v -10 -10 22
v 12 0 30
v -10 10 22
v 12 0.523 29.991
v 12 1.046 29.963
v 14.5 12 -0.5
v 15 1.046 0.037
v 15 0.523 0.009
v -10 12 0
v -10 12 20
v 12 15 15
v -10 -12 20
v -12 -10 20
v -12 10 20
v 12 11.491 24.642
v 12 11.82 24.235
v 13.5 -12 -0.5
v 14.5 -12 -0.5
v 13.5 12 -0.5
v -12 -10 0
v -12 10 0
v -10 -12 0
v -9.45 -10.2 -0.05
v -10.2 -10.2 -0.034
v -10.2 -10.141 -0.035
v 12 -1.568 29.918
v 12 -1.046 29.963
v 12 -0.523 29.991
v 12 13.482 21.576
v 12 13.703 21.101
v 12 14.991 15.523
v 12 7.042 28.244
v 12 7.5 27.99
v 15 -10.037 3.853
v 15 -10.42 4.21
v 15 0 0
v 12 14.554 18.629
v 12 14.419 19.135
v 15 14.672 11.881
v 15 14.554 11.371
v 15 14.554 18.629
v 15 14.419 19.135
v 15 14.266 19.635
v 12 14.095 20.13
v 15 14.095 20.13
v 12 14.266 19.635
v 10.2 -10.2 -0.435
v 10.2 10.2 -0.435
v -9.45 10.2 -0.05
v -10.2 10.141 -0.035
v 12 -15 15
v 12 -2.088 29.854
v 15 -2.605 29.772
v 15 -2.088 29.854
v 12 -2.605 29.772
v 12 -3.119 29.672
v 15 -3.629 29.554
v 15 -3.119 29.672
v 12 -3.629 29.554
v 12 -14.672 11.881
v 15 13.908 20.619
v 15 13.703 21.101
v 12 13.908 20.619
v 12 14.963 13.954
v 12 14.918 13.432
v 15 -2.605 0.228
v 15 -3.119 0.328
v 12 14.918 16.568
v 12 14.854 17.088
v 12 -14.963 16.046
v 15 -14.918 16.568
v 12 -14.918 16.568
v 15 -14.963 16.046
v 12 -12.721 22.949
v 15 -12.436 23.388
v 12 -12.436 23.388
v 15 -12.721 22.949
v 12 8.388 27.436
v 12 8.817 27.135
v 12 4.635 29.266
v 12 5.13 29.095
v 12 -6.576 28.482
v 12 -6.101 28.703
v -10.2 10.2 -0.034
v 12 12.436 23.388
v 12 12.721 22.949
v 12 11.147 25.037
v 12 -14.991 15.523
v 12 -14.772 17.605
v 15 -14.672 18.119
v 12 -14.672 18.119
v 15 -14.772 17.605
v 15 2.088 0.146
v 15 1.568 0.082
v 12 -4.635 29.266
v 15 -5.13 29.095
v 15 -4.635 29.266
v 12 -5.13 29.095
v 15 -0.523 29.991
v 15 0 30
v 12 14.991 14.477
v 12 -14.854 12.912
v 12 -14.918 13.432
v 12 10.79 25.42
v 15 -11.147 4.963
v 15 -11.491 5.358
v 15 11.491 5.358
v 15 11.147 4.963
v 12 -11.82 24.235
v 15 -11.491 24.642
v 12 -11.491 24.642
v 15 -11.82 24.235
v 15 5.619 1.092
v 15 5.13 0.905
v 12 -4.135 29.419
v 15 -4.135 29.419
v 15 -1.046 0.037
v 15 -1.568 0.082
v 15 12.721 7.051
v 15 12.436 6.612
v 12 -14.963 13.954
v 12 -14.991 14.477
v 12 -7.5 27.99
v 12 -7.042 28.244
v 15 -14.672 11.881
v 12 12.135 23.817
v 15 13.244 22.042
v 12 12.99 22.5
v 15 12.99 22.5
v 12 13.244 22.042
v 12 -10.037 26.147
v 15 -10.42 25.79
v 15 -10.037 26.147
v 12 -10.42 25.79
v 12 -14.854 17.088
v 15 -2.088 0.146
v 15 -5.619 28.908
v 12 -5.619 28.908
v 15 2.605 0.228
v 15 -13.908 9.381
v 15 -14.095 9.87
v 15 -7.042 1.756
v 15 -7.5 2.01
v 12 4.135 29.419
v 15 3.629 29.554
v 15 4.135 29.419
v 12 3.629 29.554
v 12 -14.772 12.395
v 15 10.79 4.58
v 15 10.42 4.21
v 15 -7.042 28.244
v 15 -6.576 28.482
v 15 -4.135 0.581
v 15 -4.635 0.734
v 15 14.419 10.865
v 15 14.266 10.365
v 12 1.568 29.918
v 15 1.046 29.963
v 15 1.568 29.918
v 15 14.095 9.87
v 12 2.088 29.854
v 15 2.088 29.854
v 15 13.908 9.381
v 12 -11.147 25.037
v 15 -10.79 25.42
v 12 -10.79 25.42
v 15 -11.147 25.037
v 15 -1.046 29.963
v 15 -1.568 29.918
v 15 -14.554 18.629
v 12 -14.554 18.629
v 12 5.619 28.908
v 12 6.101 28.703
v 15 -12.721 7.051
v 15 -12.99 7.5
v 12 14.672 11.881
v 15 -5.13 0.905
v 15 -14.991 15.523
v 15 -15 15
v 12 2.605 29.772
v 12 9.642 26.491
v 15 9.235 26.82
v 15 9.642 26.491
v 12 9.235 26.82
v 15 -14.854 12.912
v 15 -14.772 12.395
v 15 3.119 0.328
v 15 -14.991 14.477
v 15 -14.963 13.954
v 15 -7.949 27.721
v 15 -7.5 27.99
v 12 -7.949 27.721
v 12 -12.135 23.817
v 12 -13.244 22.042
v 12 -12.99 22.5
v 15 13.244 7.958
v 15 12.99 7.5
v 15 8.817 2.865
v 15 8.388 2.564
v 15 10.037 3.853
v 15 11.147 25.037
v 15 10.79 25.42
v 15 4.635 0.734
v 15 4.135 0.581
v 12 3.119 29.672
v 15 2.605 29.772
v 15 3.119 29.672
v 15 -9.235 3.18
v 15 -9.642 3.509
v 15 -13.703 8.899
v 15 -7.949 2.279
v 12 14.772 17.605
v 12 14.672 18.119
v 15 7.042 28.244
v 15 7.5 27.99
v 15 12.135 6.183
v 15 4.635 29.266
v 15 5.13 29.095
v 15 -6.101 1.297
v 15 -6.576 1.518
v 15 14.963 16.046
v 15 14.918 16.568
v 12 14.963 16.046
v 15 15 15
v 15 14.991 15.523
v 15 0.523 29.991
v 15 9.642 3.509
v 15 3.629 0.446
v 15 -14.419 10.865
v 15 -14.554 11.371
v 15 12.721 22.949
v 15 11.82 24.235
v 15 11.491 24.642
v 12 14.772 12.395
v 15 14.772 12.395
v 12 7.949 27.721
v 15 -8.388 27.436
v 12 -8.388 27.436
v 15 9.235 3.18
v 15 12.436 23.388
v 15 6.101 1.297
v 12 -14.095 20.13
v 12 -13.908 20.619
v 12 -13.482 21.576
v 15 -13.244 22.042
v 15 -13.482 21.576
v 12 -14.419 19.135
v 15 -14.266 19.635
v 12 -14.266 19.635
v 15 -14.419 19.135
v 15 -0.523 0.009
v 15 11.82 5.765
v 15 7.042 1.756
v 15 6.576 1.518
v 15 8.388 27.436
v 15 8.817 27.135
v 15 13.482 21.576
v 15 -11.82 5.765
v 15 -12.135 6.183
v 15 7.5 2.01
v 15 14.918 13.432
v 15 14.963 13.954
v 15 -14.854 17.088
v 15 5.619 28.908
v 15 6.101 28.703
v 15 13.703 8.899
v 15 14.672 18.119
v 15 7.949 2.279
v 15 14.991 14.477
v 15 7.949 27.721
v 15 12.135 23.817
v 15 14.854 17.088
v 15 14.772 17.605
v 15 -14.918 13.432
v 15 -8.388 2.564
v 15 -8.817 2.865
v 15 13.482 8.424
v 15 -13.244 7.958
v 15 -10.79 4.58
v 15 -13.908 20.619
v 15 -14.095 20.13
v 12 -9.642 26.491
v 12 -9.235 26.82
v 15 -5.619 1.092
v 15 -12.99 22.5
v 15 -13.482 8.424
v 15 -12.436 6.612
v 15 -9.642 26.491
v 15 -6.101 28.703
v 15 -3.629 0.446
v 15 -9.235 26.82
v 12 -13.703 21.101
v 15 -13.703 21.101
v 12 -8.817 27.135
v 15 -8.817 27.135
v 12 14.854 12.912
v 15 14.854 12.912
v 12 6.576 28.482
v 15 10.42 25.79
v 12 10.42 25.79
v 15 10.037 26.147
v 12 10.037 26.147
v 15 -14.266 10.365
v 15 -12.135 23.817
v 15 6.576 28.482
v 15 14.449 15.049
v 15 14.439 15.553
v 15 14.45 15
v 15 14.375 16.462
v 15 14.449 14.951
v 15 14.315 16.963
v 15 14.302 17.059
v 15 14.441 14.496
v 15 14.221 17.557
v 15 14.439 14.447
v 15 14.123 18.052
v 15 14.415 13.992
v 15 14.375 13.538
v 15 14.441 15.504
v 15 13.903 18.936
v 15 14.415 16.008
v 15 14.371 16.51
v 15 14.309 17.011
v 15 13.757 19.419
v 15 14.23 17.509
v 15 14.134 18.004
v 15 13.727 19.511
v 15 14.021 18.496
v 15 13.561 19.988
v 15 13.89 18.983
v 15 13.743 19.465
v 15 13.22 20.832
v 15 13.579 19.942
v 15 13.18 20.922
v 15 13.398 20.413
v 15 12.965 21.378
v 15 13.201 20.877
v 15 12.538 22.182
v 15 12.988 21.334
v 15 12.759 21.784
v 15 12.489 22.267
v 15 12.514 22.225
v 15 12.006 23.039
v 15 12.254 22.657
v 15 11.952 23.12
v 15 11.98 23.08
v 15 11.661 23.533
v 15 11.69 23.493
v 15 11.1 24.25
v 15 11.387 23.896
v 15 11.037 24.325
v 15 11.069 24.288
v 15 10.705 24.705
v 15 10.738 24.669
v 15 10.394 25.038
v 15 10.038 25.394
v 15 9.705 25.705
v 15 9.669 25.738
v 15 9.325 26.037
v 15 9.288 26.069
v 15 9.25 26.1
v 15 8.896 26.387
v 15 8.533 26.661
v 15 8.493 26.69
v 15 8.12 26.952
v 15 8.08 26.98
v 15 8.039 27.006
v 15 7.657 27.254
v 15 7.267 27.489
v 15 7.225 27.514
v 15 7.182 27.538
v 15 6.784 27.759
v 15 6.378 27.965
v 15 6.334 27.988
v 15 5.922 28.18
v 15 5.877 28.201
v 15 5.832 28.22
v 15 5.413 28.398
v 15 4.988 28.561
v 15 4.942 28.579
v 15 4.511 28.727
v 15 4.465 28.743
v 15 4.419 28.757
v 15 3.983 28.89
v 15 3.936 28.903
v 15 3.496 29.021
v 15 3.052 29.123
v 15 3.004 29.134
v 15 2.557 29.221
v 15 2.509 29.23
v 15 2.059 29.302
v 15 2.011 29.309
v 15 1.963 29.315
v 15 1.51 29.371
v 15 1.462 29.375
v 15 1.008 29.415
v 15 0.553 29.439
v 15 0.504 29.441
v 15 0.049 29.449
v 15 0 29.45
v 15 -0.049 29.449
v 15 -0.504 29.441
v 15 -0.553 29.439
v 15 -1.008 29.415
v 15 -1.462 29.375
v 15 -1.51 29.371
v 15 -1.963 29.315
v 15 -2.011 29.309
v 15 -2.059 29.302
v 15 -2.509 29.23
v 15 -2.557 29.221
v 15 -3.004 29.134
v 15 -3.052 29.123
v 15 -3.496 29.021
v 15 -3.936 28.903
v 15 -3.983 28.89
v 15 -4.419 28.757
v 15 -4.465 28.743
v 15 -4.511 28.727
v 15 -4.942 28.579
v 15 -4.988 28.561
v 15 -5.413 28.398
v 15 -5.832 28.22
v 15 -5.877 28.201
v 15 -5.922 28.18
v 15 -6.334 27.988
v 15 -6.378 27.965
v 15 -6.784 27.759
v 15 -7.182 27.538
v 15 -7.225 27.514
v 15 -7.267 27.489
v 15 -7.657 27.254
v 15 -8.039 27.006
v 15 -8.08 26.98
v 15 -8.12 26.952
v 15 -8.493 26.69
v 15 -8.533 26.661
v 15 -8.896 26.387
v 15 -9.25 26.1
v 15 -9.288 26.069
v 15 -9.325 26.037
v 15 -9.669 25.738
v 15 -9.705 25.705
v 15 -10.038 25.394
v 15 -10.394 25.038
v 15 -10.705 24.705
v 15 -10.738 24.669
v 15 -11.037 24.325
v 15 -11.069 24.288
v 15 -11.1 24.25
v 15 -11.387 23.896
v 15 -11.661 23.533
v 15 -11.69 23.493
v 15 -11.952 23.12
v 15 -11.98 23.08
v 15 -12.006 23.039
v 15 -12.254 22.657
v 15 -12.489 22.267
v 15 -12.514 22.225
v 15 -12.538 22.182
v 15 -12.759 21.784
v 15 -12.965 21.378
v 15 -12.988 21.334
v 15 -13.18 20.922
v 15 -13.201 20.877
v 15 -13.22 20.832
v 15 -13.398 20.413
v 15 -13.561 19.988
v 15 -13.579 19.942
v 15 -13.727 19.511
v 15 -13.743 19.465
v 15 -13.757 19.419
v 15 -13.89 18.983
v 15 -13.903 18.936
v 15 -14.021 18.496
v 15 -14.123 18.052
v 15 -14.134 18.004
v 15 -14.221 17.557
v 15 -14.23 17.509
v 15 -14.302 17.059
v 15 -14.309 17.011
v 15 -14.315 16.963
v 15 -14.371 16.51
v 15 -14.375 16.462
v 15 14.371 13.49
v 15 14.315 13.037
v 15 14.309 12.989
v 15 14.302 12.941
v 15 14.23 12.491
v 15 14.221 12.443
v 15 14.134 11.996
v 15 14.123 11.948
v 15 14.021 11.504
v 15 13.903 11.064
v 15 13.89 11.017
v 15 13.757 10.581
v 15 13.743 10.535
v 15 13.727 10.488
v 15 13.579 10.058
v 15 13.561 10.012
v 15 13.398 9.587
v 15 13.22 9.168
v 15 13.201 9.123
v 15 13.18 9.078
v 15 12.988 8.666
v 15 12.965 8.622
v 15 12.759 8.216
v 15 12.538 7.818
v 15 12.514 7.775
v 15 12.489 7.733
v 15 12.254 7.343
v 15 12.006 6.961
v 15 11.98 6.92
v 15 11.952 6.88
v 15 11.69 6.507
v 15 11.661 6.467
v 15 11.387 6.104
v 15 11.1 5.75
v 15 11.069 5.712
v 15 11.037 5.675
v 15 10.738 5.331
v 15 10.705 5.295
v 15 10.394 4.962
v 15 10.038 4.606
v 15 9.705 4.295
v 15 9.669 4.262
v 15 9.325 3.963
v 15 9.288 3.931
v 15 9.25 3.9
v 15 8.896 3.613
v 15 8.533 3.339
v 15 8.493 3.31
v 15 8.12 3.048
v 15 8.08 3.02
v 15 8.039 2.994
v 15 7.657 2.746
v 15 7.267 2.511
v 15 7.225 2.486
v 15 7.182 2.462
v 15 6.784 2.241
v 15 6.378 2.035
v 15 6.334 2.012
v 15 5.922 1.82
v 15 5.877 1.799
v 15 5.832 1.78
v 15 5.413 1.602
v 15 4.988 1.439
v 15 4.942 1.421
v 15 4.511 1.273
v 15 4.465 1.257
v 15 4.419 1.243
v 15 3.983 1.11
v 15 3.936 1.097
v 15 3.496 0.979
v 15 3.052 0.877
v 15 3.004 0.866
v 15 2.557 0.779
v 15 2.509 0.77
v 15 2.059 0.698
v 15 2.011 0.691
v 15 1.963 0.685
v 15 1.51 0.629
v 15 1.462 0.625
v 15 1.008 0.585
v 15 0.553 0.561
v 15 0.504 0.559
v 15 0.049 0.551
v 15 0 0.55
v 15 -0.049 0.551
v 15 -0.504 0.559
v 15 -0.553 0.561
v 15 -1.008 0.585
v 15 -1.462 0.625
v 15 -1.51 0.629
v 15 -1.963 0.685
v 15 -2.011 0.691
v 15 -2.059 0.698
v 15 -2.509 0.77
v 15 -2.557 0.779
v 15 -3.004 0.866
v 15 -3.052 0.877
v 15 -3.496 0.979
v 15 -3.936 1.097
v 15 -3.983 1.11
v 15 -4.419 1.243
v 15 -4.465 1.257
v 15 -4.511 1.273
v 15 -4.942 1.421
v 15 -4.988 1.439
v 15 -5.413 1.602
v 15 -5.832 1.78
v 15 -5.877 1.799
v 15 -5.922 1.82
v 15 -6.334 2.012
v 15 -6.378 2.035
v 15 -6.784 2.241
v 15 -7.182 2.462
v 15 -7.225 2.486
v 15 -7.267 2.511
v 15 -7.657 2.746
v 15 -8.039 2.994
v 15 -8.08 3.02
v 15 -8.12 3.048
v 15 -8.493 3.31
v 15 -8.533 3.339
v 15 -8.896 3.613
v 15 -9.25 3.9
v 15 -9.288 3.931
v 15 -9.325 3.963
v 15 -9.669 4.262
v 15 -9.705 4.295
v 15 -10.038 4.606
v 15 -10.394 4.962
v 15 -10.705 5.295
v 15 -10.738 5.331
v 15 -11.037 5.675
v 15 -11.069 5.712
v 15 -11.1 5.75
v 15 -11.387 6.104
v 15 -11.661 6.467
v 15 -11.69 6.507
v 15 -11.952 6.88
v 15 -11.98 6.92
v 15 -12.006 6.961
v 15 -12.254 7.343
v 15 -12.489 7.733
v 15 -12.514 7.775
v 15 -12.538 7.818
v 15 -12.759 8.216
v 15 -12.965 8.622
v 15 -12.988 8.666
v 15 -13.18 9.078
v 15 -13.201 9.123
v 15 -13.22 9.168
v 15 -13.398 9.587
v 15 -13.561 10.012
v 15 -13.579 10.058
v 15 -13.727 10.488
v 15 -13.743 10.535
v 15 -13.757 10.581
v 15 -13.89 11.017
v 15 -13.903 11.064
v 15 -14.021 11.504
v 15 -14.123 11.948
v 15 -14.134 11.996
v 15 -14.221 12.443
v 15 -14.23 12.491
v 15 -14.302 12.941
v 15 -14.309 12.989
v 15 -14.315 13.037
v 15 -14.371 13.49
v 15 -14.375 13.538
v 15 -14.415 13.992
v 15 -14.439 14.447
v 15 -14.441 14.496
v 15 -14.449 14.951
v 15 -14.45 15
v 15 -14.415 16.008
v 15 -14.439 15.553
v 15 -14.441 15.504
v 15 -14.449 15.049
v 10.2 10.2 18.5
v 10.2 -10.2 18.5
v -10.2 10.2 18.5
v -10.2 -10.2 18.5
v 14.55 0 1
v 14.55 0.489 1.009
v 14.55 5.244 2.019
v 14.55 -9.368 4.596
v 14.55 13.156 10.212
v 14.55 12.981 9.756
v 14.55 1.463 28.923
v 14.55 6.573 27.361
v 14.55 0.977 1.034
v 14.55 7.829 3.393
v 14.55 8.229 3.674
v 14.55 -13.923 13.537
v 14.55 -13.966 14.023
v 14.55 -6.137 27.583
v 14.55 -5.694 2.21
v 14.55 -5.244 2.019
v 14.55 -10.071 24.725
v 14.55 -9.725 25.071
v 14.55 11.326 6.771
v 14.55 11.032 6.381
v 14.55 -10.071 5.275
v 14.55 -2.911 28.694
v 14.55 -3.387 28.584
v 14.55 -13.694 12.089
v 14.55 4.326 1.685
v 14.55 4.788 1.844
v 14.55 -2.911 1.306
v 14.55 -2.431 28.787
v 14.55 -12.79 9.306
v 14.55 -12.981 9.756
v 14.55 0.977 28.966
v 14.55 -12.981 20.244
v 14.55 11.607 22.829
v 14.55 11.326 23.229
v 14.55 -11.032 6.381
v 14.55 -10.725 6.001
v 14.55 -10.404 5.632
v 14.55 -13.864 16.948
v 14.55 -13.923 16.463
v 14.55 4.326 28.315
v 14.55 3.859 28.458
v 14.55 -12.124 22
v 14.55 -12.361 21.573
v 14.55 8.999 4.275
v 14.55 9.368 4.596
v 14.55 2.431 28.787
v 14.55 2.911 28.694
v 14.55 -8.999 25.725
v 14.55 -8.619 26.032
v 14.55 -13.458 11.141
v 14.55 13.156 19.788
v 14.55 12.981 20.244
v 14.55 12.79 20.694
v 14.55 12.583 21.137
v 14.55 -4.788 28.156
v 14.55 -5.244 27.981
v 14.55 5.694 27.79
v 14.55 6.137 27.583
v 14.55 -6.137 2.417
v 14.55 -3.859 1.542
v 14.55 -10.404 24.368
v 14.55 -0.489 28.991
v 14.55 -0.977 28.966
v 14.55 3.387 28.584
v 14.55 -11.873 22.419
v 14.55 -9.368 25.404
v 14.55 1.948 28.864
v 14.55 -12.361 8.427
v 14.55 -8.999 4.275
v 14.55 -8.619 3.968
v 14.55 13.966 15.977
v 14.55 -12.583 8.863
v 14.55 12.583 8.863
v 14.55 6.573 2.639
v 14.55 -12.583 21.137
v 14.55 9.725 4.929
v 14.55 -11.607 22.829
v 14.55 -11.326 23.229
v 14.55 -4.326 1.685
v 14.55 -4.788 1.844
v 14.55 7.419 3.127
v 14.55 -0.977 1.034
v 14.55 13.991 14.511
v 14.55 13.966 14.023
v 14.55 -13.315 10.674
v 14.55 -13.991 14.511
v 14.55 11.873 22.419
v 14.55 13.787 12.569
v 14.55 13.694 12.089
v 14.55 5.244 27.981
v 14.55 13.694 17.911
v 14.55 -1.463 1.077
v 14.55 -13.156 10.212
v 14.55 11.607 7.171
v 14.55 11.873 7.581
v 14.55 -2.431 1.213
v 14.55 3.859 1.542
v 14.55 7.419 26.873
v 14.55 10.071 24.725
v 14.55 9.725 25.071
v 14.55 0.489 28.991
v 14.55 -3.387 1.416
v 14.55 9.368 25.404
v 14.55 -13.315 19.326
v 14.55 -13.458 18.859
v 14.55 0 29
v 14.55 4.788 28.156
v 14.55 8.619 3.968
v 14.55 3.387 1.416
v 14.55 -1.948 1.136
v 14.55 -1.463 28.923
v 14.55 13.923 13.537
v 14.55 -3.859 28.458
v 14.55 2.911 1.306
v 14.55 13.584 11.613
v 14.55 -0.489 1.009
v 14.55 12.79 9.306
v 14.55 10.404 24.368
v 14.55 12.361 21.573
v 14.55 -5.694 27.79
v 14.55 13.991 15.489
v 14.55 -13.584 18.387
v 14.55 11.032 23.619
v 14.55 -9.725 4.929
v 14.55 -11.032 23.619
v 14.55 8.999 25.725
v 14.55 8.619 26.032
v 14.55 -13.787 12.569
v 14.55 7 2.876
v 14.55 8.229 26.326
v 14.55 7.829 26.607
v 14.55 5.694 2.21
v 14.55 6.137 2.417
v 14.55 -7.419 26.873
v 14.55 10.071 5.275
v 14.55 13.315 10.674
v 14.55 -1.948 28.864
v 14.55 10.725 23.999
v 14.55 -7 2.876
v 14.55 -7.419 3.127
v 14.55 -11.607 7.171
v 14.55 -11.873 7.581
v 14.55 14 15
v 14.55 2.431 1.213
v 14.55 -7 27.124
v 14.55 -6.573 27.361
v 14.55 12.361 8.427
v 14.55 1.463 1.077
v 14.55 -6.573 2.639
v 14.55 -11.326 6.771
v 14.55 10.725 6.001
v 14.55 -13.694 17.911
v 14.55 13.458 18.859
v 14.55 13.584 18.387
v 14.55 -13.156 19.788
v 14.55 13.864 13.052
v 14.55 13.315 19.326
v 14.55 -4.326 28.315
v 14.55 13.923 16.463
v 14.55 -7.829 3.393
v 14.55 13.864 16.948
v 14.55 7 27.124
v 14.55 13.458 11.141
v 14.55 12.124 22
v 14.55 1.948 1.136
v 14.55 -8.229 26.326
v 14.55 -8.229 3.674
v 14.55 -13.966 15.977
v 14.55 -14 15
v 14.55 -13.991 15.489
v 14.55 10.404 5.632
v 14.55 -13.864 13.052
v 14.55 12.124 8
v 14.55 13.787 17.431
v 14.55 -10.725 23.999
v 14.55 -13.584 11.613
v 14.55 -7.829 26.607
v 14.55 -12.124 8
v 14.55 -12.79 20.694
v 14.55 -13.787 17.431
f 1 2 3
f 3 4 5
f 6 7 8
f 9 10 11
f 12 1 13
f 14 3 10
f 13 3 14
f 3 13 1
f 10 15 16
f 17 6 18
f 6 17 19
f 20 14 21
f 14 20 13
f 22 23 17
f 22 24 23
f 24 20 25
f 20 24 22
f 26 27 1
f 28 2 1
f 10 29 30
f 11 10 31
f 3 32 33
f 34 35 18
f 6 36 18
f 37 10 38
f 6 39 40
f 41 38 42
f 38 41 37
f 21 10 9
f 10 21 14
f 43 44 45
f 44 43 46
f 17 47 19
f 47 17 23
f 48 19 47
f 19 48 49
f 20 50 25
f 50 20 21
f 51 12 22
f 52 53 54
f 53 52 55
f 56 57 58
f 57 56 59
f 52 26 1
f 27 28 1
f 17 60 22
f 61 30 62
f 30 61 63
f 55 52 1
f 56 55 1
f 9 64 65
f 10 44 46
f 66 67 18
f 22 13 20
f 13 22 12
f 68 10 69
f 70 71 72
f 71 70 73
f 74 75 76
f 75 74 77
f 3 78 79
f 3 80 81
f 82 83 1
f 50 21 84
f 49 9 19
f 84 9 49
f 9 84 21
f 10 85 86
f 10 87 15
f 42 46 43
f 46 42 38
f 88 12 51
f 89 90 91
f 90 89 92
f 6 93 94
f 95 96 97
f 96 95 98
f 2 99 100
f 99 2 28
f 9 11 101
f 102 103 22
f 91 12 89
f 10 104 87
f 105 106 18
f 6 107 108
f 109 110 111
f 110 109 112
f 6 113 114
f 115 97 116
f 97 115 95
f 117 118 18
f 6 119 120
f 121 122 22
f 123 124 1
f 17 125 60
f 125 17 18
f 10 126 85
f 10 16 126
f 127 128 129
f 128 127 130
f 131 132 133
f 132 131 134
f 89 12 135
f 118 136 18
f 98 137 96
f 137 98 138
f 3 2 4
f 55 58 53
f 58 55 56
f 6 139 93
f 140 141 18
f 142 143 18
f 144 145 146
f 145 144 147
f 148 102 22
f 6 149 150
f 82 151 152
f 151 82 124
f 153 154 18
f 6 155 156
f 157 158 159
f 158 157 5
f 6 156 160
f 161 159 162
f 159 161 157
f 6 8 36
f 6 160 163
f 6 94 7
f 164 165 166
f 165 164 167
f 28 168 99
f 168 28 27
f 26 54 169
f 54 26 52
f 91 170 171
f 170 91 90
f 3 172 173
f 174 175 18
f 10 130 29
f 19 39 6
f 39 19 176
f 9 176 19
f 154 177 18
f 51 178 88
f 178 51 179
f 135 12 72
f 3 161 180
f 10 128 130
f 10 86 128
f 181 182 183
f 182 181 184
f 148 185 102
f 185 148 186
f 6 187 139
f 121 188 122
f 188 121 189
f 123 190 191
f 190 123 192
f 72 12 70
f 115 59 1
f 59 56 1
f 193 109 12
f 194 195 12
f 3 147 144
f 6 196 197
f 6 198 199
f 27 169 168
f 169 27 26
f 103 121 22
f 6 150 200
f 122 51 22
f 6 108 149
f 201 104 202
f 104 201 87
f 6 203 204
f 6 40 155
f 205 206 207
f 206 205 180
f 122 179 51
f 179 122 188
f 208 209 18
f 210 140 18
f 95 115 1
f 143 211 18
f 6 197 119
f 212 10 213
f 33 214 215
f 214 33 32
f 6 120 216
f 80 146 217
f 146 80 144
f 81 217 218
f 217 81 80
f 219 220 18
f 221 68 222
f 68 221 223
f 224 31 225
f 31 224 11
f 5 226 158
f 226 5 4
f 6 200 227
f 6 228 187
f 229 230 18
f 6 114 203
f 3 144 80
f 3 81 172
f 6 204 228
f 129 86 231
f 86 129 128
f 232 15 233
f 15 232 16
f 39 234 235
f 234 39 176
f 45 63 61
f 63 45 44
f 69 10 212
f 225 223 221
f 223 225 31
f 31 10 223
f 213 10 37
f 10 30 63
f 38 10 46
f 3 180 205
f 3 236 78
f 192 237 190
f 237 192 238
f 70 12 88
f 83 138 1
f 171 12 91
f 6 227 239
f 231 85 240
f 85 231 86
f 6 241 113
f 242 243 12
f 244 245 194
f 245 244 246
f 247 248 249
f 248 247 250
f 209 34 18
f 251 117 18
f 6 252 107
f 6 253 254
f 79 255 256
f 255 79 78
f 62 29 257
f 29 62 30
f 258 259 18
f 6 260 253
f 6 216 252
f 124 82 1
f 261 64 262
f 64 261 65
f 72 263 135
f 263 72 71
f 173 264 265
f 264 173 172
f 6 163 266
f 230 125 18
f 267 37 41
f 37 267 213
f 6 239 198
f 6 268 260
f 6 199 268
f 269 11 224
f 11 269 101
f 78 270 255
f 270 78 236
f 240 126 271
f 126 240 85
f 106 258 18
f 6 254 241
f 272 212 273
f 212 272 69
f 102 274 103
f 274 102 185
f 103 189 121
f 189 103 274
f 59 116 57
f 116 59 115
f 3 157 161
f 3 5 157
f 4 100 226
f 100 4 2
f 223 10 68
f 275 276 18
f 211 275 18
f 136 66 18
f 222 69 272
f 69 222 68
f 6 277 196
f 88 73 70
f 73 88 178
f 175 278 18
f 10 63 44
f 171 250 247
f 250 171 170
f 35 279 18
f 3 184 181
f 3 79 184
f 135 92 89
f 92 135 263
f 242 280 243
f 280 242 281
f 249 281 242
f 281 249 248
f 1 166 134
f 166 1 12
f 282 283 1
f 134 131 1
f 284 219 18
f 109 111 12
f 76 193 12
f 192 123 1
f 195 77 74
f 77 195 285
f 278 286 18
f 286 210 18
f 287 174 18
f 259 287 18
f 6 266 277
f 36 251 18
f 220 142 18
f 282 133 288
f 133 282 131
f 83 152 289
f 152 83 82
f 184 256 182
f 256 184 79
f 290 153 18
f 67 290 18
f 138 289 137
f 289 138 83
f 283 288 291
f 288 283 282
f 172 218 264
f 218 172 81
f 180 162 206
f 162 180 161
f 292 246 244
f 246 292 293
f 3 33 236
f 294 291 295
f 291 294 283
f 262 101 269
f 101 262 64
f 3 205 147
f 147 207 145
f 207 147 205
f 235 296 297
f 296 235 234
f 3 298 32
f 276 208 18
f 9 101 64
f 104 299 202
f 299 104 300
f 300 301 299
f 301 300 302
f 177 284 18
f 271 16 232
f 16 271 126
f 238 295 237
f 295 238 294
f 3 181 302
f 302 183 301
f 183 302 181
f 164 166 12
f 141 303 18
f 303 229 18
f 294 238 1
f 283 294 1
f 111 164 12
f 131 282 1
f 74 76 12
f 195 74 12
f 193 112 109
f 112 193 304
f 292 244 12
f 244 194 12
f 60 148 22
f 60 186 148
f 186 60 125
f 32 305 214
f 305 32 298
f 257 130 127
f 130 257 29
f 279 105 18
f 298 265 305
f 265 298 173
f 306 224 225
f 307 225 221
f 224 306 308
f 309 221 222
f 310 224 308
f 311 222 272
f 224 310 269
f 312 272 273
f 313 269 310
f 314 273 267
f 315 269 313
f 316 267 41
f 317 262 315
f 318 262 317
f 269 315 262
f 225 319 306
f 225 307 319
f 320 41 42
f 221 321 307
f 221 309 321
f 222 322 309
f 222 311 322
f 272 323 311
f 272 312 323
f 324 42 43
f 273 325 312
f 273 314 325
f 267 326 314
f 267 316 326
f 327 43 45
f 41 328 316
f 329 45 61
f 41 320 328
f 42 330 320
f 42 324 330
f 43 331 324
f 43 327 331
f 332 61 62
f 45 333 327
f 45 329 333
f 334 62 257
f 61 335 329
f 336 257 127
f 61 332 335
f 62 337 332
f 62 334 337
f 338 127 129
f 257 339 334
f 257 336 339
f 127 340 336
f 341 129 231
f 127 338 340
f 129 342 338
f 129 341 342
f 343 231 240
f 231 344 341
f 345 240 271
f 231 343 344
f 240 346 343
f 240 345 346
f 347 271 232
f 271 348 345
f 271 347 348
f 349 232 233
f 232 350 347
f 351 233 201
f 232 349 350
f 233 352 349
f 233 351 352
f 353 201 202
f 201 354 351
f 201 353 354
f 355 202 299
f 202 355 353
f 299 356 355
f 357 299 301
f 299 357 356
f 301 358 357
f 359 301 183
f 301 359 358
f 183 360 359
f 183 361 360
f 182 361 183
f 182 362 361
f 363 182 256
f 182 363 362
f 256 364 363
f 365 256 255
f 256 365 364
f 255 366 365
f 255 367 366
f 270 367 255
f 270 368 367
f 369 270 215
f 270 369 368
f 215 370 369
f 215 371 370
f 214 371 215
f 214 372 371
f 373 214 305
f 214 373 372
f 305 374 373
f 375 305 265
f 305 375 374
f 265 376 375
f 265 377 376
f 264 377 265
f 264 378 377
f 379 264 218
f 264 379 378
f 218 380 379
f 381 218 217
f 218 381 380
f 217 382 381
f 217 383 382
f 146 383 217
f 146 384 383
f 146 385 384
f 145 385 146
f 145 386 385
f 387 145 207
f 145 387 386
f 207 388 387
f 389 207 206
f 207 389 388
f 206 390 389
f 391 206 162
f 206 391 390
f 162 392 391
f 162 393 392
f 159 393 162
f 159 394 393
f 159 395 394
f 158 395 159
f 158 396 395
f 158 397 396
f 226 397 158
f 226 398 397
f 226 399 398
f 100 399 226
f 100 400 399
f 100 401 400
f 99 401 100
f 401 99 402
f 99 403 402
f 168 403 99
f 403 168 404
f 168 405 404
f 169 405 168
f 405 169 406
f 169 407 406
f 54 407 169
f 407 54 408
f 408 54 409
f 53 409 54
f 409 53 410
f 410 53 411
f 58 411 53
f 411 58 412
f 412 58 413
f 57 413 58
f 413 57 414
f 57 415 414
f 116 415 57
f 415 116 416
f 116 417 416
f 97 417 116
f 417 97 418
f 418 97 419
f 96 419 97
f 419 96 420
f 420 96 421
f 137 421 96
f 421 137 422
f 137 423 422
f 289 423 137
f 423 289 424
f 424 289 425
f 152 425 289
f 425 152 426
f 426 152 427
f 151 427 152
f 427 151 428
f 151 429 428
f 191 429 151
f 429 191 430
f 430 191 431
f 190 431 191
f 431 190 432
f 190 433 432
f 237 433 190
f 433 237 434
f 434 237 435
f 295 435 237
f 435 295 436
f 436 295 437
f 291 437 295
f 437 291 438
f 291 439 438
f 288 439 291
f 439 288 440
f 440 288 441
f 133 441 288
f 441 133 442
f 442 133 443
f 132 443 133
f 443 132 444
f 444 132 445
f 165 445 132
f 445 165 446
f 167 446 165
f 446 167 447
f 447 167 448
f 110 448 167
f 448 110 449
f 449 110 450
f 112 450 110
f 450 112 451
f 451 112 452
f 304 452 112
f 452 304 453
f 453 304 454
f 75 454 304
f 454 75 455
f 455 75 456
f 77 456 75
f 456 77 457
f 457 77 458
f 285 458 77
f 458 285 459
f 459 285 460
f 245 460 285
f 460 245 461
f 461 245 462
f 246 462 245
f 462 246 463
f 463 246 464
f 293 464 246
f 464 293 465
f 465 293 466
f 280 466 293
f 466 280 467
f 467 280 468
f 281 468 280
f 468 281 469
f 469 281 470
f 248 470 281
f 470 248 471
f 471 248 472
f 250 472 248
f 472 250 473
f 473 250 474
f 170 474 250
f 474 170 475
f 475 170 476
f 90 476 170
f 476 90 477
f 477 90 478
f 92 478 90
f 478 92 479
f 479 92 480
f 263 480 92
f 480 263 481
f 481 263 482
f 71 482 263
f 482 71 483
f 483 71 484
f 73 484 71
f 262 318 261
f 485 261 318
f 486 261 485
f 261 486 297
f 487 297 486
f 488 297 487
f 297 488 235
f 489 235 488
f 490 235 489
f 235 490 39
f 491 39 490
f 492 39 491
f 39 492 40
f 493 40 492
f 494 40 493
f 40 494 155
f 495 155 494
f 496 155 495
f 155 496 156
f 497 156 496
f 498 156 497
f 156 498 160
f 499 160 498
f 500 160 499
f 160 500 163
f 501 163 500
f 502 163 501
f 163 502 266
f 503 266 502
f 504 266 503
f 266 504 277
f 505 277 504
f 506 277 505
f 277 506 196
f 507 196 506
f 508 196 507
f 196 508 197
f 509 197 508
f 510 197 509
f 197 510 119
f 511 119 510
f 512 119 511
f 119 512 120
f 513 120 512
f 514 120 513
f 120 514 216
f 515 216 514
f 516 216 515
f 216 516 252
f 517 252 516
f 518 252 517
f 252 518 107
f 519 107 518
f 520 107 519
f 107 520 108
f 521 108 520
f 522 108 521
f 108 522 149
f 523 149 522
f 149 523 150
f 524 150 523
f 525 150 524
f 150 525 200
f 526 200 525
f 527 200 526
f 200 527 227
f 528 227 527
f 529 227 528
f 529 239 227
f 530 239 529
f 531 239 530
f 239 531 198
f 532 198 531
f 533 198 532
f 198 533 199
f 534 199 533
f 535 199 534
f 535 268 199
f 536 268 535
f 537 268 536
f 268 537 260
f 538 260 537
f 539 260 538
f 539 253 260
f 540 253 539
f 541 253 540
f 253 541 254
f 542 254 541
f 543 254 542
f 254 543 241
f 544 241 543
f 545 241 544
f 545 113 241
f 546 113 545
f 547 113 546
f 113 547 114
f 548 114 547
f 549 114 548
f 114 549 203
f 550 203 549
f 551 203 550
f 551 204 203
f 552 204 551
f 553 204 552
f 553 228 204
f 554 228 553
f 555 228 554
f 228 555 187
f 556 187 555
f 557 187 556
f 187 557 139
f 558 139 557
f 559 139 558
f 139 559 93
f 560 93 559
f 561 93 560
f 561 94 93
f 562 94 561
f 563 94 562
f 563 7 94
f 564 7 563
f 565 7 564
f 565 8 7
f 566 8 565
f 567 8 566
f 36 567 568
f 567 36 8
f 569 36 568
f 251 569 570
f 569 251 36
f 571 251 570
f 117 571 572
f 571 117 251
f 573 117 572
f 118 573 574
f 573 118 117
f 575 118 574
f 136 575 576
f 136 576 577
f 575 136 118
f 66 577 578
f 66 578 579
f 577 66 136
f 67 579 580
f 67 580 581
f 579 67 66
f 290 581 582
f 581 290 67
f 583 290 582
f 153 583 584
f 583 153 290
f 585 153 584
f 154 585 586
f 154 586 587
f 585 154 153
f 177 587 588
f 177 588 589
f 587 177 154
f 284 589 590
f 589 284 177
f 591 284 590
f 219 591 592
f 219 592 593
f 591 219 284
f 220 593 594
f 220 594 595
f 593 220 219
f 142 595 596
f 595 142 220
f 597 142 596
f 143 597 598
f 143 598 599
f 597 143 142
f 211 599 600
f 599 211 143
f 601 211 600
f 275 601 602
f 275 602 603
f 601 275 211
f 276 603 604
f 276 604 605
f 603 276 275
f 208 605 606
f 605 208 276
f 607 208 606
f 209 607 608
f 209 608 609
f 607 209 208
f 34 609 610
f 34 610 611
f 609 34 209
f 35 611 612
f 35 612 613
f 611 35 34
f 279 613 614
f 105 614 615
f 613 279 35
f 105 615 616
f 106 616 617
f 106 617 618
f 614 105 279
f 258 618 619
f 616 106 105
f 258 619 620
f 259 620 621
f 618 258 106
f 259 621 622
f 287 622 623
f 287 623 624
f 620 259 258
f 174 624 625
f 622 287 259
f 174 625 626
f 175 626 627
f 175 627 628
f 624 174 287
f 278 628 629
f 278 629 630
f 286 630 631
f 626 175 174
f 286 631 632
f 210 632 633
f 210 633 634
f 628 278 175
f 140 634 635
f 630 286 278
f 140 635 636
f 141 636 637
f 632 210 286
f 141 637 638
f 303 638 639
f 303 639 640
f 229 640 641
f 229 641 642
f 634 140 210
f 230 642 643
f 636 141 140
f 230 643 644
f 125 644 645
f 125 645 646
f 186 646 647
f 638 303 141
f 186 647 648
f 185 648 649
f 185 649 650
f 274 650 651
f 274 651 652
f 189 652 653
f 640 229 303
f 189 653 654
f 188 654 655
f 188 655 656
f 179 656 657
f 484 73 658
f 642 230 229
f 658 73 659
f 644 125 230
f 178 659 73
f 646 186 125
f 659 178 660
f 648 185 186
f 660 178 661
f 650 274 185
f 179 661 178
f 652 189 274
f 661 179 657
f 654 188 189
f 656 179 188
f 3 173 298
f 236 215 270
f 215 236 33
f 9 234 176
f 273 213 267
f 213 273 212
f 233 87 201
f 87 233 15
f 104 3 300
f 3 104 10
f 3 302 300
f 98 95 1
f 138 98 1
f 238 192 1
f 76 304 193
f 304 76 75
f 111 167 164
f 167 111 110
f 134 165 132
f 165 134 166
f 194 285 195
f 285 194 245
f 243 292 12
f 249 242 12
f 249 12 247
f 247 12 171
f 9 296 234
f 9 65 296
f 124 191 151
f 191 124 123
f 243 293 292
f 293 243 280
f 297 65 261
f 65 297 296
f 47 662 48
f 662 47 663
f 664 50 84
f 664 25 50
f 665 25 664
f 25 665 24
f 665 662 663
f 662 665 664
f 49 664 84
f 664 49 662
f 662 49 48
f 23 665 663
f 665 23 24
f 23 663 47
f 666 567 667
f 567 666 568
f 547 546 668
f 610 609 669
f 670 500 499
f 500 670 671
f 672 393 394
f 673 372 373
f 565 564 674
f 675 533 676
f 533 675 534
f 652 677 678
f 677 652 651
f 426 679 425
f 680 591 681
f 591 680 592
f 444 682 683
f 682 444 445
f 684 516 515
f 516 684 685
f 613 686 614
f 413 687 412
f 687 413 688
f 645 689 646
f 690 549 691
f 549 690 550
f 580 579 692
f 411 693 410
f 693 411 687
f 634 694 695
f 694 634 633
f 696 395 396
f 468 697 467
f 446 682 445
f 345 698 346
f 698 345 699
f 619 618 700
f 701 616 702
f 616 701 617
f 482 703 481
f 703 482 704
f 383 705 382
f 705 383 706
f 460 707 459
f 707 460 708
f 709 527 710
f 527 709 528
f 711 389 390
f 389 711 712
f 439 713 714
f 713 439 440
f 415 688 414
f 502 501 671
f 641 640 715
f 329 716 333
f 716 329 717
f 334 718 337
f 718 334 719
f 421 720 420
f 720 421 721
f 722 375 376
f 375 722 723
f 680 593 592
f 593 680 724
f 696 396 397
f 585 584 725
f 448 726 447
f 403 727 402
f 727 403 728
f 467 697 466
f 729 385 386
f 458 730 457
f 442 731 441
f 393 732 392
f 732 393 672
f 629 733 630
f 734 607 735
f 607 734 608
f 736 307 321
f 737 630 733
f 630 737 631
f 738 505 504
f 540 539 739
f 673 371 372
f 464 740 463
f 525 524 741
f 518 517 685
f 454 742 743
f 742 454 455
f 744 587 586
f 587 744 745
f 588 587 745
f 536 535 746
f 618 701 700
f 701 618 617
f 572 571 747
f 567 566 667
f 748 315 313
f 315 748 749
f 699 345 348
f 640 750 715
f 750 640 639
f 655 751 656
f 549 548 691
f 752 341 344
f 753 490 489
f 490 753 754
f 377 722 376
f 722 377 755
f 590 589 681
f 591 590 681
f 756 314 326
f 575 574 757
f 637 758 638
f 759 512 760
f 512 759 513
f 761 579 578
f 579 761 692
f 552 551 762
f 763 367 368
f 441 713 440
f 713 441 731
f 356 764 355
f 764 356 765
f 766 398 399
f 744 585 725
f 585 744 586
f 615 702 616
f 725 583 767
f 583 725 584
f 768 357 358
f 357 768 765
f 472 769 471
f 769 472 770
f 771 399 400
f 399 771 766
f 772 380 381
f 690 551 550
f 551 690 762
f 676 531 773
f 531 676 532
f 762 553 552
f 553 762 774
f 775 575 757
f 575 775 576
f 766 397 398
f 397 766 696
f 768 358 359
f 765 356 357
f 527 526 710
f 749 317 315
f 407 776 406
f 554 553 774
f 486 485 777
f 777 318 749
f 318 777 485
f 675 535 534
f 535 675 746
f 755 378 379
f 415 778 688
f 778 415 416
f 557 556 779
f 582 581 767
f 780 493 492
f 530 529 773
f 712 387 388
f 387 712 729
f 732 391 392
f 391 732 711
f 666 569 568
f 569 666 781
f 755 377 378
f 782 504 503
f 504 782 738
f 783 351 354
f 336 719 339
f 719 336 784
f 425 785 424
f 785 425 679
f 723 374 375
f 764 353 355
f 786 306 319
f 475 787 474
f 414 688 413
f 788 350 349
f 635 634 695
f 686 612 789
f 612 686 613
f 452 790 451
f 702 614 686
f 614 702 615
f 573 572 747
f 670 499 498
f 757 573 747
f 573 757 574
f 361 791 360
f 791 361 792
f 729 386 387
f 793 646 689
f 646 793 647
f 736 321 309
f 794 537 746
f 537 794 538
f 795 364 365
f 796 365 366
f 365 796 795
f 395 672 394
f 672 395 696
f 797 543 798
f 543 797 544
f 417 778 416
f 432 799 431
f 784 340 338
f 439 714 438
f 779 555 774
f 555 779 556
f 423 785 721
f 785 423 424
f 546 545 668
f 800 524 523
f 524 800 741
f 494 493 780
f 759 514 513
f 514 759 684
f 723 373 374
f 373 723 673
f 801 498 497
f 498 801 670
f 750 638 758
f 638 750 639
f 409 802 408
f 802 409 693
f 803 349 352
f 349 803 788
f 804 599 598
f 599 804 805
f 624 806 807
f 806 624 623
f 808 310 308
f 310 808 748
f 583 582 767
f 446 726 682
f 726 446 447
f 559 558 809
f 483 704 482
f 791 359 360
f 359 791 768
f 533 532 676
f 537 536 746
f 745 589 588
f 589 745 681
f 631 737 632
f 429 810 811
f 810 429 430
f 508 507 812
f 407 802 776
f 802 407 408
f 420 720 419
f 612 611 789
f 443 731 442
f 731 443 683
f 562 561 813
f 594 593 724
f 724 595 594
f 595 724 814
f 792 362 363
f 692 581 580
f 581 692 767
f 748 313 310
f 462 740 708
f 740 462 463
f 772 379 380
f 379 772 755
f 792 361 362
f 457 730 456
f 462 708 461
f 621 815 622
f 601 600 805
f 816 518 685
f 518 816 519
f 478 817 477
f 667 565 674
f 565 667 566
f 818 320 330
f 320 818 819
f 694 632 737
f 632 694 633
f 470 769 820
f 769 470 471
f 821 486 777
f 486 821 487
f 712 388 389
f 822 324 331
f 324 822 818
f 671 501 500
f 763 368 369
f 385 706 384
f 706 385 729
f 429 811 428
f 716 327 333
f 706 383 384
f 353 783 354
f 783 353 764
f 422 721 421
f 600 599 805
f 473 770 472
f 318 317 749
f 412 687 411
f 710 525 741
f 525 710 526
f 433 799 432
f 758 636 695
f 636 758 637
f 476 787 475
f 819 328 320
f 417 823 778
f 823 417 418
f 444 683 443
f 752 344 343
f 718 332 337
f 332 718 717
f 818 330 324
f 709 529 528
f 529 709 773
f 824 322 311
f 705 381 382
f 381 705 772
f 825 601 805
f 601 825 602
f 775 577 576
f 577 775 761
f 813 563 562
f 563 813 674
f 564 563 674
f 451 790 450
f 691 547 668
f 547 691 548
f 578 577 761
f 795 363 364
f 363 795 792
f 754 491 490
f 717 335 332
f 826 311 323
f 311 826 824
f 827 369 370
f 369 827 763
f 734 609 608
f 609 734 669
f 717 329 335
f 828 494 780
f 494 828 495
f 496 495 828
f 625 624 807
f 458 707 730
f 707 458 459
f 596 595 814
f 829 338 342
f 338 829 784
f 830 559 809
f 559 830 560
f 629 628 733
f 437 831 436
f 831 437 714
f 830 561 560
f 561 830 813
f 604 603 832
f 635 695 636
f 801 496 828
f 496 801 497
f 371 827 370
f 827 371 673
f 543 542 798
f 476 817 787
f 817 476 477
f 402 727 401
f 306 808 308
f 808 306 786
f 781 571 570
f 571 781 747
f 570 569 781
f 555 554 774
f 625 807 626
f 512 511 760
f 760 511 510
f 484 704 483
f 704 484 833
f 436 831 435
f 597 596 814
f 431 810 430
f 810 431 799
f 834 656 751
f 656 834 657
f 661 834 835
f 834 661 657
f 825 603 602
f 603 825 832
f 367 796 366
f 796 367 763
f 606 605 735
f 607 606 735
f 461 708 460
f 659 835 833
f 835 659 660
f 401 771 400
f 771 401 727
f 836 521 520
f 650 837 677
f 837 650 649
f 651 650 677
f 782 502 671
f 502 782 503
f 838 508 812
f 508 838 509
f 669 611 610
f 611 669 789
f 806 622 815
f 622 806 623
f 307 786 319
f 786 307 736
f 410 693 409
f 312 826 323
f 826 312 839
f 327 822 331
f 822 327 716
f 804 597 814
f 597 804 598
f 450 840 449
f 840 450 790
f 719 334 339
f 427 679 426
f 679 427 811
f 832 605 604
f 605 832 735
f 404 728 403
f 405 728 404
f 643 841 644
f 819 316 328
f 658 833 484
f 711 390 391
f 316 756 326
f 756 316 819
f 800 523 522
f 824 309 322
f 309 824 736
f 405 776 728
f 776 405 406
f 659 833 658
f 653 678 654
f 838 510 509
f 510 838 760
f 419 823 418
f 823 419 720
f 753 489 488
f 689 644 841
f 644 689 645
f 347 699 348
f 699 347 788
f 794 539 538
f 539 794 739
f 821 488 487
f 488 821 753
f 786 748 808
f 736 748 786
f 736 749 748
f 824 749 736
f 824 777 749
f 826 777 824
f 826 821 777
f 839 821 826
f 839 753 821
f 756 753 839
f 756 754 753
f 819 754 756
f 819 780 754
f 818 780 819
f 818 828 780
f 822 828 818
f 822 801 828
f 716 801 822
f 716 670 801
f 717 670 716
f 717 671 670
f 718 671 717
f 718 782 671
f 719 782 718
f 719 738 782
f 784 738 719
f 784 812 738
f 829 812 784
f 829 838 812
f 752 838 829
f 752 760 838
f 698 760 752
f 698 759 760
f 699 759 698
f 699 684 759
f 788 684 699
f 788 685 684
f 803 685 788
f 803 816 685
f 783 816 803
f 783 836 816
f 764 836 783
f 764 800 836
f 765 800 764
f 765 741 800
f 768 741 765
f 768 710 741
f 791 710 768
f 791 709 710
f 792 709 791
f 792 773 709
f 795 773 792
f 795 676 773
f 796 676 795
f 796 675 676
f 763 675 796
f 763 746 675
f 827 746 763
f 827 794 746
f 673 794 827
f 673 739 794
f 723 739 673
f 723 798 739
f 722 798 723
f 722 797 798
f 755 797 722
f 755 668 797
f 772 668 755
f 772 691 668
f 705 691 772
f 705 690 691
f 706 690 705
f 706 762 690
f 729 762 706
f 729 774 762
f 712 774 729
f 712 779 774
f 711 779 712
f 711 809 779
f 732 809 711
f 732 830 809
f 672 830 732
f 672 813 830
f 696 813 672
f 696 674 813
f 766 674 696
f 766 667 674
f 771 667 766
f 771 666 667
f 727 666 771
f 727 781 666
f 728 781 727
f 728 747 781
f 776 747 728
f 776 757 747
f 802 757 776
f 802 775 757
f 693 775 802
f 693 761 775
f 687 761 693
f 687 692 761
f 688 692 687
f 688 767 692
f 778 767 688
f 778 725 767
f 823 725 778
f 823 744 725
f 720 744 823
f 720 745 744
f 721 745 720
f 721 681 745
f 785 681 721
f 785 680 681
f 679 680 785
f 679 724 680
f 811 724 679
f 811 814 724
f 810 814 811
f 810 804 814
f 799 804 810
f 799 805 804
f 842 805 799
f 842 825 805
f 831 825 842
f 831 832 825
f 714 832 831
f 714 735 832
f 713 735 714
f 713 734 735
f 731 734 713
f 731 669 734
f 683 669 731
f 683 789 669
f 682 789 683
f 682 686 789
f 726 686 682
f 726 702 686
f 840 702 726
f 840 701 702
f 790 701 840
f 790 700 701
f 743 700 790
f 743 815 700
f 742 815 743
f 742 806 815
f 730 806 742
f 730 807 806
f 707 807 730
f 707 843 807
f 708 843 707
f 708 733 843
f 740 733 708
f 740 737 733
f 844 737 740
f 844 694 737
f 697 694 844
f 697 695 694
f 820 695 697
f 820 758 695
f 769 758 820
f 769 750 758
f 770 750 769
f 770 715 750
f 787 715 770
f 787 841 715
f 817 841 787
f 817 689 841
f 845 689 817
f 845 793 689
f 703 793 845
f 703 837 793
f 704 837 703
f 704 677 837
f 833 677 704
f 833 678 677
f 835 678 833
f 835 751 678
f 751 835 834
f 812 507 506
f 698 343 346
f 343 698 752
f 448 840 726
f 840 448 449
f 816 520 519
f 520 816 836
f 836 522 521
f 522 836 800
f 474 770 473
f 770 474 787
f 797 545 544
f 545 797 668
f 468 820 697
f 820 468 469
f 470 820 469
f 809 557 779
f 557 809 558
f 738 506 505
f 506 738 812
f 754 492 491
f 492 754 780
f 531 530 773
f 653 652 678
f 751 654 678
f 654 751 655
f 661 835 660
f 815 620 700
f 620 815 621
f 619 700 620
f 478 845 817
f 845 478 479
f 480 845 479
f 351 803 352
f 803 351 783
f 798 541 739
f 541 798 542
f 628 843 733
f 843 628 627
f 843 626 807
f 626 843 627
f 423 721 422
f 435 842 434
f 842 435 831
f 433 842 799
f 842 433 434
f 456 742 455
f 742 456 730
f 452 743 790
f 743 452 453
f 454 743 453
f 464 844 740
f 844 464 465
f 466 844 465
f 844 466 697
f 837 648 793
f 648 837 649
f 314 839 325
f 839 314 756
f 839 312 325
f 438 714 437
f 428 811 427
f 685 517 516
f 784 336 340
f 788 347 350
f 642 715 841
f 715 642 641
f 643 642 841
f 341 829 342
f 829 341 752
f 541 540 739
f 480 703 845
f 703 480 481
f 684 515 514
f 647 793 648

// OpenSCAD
$fs = $preview ? 2 : 0.2;
$fa = $preview ? 12 : 2;

eps = 0.05;
tolerance = 0.2;

tube_size = 20;
tube_thickness = 1.5;

base_thickness = 8;

end_width = 20;
end_shell = 2;

pad_diameter = 28;
pad_thickness = 3;
pad_shell = 1;


translate([0, 0, end_width / 2])
rotate([0, 90, 0])
difference() {
  pad_pos_y = -(pad_diameter / 2 - end_width / 2 + pad_shell);

  hull() {
    cube([end_width, tube_size + 2*end_shell, tube_size], center=true);
    cube([end_width, tube_size, tube_size + 2*end_shell], center=true);

    translate([-end_shell, 0, 0])
    cube([end_width, tube_size, tube_size], center=true);

    translate([pad_pos_y , 0, tube_size / 2 + end_shell])
    cylinder(pad_thickness, d=pad_diameter + 2*pad_shell);

    translate([end_width / 2, 0, tube_size / 2 + end_shell + pad_thickness - 1])
    cube([1, tube_size + 2 * end_shell, 1], center=true);
  }

  // tube
  translate([1, 0, 0])
  cube([end_width - 1, tube_size + 2*tolerance, tube_size + 2*tolerance], center=true);

  // pad cutout
  translate([pad_pos_y, 0, tube_size / 2 + end_shell + pad_thickness - 0.5 + eps])
  cylinder(0.5, d1=pad_diameter, d2=pad_diameter + 1);
}
